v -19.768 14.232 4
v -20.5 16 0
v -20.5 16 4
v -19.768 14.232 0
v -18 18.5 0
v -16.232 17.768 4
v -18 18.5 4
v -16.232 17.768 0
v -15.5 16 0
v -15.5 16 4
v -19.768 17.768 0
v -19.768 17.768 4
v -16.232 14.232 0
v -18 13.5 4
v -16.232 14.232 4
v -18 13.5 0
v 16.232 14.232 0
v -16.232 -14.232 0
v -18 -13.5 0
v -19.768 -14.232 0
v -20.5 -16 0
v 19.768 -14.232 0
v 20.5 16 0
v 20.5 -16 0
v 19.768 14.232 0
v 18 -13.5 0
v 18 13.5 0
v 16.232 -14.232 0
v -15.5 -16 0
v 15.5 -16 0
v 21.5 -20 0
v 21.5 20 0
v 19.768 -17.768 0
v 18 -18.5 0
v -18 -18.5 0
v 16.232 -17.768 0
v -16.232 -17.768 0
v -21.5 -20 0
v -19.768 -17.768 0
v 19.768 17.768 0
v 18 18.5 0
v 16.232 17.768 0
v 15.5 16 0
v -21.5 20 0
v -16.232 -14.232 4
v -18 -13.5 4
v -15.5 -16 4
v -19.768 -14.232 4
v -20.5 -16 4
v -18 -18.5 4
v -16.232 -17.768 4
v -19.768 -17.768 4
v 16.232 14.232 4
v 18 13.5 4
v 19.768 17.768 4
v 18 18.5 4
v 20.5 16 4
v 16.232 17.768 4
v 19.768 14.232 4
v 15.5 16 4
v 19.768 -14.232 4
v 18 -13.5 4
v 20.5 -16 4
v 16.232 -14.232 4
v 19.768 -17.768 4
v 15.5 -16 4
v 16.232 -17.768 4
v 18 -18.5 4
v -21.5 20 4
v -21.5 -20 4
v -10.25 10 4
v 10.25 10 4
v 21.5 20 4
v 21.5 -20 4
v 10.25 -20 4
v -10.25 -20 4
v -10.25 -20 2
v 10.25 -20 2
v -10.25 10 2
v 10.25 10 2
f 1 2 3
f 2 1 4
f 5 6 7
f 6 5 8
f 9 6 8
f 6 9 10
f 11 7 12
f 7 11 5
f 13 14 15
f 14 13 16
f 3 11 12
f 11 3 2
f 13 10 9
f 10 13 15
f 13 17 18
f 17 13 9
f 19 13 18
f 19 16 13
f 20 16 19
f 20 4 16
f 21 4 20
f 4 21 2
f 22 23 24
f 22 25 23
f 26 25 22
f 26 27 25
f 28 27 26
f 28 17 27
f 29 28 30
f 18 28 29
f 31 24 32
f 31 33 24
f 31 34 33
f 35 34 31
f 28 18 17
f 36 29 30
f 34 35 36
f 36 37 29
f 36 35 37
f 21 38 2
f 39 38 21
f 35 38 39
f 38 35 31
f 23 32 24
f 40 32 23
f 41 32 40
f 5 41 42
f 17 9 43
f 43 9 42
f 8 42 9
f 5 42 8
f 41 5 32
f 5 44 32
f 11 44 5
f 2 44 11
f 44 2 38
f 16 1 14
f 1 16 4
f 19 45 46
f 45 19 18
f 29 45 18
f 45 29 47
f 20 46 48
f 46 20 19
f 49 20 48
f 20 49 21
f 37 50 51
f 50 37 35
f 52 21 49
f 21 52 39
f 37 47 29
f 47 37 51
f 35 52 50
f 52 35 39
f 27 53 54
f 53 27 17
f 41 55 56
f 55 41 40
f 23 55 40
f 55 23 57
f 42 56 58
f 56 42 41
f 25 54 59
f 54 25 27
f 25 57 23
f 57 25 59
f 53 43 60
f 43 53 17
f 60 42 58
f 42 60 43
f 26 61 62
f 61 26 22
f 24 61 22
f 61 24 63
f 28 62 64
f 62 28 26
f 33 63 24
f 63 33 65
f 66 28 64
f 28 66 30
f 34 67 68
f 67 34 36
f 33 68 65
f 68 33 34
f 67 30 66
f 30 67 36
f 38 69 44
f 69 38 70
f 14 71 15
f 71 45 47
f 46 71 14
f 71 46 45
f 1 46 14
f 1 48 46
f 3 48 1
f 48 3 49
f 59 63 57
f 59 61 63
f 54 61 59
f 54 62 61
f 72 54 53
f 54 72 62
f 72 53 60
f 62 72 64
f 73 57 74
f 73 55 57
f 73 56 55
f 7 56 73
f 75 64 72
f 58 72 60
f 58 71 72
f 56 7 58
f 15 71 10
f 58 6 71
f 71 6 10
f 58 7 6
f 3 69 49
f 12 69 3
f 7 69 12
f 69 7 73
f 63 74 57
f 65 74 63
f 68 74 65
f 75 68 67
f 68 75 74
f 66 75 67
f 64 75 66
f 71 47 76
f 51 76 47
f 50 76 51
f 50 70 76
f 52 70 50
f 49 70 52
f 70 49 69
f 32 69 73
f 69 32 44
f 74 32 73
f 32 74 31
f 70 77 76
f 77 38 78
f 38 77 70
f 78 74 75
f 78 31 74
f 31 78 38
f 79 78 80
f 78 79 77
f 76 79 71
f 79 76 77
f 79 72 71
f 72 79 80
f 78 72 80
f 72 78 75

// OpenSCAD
//X Gantry non-mirror side
//Minimal version to test fit.

difference(){
    linear_extrude(4){square([43,40],center=true);}
    Carrage_Mount();
    translate([0,-10,2])linear_extrude(5){square([20.5,40],center=true);}    
}






module Carrage_Mount(){
    translate([-18,16]){cylinder(10,2.5,2.5);}
    translate([-18,-16]){cylinder(10,2.5,2.5);}
    translate([18,16]){cylinder(10,2.5,2.5);}
    translate([18,-16]){cylinder(10,2.5,2.5);}
}
